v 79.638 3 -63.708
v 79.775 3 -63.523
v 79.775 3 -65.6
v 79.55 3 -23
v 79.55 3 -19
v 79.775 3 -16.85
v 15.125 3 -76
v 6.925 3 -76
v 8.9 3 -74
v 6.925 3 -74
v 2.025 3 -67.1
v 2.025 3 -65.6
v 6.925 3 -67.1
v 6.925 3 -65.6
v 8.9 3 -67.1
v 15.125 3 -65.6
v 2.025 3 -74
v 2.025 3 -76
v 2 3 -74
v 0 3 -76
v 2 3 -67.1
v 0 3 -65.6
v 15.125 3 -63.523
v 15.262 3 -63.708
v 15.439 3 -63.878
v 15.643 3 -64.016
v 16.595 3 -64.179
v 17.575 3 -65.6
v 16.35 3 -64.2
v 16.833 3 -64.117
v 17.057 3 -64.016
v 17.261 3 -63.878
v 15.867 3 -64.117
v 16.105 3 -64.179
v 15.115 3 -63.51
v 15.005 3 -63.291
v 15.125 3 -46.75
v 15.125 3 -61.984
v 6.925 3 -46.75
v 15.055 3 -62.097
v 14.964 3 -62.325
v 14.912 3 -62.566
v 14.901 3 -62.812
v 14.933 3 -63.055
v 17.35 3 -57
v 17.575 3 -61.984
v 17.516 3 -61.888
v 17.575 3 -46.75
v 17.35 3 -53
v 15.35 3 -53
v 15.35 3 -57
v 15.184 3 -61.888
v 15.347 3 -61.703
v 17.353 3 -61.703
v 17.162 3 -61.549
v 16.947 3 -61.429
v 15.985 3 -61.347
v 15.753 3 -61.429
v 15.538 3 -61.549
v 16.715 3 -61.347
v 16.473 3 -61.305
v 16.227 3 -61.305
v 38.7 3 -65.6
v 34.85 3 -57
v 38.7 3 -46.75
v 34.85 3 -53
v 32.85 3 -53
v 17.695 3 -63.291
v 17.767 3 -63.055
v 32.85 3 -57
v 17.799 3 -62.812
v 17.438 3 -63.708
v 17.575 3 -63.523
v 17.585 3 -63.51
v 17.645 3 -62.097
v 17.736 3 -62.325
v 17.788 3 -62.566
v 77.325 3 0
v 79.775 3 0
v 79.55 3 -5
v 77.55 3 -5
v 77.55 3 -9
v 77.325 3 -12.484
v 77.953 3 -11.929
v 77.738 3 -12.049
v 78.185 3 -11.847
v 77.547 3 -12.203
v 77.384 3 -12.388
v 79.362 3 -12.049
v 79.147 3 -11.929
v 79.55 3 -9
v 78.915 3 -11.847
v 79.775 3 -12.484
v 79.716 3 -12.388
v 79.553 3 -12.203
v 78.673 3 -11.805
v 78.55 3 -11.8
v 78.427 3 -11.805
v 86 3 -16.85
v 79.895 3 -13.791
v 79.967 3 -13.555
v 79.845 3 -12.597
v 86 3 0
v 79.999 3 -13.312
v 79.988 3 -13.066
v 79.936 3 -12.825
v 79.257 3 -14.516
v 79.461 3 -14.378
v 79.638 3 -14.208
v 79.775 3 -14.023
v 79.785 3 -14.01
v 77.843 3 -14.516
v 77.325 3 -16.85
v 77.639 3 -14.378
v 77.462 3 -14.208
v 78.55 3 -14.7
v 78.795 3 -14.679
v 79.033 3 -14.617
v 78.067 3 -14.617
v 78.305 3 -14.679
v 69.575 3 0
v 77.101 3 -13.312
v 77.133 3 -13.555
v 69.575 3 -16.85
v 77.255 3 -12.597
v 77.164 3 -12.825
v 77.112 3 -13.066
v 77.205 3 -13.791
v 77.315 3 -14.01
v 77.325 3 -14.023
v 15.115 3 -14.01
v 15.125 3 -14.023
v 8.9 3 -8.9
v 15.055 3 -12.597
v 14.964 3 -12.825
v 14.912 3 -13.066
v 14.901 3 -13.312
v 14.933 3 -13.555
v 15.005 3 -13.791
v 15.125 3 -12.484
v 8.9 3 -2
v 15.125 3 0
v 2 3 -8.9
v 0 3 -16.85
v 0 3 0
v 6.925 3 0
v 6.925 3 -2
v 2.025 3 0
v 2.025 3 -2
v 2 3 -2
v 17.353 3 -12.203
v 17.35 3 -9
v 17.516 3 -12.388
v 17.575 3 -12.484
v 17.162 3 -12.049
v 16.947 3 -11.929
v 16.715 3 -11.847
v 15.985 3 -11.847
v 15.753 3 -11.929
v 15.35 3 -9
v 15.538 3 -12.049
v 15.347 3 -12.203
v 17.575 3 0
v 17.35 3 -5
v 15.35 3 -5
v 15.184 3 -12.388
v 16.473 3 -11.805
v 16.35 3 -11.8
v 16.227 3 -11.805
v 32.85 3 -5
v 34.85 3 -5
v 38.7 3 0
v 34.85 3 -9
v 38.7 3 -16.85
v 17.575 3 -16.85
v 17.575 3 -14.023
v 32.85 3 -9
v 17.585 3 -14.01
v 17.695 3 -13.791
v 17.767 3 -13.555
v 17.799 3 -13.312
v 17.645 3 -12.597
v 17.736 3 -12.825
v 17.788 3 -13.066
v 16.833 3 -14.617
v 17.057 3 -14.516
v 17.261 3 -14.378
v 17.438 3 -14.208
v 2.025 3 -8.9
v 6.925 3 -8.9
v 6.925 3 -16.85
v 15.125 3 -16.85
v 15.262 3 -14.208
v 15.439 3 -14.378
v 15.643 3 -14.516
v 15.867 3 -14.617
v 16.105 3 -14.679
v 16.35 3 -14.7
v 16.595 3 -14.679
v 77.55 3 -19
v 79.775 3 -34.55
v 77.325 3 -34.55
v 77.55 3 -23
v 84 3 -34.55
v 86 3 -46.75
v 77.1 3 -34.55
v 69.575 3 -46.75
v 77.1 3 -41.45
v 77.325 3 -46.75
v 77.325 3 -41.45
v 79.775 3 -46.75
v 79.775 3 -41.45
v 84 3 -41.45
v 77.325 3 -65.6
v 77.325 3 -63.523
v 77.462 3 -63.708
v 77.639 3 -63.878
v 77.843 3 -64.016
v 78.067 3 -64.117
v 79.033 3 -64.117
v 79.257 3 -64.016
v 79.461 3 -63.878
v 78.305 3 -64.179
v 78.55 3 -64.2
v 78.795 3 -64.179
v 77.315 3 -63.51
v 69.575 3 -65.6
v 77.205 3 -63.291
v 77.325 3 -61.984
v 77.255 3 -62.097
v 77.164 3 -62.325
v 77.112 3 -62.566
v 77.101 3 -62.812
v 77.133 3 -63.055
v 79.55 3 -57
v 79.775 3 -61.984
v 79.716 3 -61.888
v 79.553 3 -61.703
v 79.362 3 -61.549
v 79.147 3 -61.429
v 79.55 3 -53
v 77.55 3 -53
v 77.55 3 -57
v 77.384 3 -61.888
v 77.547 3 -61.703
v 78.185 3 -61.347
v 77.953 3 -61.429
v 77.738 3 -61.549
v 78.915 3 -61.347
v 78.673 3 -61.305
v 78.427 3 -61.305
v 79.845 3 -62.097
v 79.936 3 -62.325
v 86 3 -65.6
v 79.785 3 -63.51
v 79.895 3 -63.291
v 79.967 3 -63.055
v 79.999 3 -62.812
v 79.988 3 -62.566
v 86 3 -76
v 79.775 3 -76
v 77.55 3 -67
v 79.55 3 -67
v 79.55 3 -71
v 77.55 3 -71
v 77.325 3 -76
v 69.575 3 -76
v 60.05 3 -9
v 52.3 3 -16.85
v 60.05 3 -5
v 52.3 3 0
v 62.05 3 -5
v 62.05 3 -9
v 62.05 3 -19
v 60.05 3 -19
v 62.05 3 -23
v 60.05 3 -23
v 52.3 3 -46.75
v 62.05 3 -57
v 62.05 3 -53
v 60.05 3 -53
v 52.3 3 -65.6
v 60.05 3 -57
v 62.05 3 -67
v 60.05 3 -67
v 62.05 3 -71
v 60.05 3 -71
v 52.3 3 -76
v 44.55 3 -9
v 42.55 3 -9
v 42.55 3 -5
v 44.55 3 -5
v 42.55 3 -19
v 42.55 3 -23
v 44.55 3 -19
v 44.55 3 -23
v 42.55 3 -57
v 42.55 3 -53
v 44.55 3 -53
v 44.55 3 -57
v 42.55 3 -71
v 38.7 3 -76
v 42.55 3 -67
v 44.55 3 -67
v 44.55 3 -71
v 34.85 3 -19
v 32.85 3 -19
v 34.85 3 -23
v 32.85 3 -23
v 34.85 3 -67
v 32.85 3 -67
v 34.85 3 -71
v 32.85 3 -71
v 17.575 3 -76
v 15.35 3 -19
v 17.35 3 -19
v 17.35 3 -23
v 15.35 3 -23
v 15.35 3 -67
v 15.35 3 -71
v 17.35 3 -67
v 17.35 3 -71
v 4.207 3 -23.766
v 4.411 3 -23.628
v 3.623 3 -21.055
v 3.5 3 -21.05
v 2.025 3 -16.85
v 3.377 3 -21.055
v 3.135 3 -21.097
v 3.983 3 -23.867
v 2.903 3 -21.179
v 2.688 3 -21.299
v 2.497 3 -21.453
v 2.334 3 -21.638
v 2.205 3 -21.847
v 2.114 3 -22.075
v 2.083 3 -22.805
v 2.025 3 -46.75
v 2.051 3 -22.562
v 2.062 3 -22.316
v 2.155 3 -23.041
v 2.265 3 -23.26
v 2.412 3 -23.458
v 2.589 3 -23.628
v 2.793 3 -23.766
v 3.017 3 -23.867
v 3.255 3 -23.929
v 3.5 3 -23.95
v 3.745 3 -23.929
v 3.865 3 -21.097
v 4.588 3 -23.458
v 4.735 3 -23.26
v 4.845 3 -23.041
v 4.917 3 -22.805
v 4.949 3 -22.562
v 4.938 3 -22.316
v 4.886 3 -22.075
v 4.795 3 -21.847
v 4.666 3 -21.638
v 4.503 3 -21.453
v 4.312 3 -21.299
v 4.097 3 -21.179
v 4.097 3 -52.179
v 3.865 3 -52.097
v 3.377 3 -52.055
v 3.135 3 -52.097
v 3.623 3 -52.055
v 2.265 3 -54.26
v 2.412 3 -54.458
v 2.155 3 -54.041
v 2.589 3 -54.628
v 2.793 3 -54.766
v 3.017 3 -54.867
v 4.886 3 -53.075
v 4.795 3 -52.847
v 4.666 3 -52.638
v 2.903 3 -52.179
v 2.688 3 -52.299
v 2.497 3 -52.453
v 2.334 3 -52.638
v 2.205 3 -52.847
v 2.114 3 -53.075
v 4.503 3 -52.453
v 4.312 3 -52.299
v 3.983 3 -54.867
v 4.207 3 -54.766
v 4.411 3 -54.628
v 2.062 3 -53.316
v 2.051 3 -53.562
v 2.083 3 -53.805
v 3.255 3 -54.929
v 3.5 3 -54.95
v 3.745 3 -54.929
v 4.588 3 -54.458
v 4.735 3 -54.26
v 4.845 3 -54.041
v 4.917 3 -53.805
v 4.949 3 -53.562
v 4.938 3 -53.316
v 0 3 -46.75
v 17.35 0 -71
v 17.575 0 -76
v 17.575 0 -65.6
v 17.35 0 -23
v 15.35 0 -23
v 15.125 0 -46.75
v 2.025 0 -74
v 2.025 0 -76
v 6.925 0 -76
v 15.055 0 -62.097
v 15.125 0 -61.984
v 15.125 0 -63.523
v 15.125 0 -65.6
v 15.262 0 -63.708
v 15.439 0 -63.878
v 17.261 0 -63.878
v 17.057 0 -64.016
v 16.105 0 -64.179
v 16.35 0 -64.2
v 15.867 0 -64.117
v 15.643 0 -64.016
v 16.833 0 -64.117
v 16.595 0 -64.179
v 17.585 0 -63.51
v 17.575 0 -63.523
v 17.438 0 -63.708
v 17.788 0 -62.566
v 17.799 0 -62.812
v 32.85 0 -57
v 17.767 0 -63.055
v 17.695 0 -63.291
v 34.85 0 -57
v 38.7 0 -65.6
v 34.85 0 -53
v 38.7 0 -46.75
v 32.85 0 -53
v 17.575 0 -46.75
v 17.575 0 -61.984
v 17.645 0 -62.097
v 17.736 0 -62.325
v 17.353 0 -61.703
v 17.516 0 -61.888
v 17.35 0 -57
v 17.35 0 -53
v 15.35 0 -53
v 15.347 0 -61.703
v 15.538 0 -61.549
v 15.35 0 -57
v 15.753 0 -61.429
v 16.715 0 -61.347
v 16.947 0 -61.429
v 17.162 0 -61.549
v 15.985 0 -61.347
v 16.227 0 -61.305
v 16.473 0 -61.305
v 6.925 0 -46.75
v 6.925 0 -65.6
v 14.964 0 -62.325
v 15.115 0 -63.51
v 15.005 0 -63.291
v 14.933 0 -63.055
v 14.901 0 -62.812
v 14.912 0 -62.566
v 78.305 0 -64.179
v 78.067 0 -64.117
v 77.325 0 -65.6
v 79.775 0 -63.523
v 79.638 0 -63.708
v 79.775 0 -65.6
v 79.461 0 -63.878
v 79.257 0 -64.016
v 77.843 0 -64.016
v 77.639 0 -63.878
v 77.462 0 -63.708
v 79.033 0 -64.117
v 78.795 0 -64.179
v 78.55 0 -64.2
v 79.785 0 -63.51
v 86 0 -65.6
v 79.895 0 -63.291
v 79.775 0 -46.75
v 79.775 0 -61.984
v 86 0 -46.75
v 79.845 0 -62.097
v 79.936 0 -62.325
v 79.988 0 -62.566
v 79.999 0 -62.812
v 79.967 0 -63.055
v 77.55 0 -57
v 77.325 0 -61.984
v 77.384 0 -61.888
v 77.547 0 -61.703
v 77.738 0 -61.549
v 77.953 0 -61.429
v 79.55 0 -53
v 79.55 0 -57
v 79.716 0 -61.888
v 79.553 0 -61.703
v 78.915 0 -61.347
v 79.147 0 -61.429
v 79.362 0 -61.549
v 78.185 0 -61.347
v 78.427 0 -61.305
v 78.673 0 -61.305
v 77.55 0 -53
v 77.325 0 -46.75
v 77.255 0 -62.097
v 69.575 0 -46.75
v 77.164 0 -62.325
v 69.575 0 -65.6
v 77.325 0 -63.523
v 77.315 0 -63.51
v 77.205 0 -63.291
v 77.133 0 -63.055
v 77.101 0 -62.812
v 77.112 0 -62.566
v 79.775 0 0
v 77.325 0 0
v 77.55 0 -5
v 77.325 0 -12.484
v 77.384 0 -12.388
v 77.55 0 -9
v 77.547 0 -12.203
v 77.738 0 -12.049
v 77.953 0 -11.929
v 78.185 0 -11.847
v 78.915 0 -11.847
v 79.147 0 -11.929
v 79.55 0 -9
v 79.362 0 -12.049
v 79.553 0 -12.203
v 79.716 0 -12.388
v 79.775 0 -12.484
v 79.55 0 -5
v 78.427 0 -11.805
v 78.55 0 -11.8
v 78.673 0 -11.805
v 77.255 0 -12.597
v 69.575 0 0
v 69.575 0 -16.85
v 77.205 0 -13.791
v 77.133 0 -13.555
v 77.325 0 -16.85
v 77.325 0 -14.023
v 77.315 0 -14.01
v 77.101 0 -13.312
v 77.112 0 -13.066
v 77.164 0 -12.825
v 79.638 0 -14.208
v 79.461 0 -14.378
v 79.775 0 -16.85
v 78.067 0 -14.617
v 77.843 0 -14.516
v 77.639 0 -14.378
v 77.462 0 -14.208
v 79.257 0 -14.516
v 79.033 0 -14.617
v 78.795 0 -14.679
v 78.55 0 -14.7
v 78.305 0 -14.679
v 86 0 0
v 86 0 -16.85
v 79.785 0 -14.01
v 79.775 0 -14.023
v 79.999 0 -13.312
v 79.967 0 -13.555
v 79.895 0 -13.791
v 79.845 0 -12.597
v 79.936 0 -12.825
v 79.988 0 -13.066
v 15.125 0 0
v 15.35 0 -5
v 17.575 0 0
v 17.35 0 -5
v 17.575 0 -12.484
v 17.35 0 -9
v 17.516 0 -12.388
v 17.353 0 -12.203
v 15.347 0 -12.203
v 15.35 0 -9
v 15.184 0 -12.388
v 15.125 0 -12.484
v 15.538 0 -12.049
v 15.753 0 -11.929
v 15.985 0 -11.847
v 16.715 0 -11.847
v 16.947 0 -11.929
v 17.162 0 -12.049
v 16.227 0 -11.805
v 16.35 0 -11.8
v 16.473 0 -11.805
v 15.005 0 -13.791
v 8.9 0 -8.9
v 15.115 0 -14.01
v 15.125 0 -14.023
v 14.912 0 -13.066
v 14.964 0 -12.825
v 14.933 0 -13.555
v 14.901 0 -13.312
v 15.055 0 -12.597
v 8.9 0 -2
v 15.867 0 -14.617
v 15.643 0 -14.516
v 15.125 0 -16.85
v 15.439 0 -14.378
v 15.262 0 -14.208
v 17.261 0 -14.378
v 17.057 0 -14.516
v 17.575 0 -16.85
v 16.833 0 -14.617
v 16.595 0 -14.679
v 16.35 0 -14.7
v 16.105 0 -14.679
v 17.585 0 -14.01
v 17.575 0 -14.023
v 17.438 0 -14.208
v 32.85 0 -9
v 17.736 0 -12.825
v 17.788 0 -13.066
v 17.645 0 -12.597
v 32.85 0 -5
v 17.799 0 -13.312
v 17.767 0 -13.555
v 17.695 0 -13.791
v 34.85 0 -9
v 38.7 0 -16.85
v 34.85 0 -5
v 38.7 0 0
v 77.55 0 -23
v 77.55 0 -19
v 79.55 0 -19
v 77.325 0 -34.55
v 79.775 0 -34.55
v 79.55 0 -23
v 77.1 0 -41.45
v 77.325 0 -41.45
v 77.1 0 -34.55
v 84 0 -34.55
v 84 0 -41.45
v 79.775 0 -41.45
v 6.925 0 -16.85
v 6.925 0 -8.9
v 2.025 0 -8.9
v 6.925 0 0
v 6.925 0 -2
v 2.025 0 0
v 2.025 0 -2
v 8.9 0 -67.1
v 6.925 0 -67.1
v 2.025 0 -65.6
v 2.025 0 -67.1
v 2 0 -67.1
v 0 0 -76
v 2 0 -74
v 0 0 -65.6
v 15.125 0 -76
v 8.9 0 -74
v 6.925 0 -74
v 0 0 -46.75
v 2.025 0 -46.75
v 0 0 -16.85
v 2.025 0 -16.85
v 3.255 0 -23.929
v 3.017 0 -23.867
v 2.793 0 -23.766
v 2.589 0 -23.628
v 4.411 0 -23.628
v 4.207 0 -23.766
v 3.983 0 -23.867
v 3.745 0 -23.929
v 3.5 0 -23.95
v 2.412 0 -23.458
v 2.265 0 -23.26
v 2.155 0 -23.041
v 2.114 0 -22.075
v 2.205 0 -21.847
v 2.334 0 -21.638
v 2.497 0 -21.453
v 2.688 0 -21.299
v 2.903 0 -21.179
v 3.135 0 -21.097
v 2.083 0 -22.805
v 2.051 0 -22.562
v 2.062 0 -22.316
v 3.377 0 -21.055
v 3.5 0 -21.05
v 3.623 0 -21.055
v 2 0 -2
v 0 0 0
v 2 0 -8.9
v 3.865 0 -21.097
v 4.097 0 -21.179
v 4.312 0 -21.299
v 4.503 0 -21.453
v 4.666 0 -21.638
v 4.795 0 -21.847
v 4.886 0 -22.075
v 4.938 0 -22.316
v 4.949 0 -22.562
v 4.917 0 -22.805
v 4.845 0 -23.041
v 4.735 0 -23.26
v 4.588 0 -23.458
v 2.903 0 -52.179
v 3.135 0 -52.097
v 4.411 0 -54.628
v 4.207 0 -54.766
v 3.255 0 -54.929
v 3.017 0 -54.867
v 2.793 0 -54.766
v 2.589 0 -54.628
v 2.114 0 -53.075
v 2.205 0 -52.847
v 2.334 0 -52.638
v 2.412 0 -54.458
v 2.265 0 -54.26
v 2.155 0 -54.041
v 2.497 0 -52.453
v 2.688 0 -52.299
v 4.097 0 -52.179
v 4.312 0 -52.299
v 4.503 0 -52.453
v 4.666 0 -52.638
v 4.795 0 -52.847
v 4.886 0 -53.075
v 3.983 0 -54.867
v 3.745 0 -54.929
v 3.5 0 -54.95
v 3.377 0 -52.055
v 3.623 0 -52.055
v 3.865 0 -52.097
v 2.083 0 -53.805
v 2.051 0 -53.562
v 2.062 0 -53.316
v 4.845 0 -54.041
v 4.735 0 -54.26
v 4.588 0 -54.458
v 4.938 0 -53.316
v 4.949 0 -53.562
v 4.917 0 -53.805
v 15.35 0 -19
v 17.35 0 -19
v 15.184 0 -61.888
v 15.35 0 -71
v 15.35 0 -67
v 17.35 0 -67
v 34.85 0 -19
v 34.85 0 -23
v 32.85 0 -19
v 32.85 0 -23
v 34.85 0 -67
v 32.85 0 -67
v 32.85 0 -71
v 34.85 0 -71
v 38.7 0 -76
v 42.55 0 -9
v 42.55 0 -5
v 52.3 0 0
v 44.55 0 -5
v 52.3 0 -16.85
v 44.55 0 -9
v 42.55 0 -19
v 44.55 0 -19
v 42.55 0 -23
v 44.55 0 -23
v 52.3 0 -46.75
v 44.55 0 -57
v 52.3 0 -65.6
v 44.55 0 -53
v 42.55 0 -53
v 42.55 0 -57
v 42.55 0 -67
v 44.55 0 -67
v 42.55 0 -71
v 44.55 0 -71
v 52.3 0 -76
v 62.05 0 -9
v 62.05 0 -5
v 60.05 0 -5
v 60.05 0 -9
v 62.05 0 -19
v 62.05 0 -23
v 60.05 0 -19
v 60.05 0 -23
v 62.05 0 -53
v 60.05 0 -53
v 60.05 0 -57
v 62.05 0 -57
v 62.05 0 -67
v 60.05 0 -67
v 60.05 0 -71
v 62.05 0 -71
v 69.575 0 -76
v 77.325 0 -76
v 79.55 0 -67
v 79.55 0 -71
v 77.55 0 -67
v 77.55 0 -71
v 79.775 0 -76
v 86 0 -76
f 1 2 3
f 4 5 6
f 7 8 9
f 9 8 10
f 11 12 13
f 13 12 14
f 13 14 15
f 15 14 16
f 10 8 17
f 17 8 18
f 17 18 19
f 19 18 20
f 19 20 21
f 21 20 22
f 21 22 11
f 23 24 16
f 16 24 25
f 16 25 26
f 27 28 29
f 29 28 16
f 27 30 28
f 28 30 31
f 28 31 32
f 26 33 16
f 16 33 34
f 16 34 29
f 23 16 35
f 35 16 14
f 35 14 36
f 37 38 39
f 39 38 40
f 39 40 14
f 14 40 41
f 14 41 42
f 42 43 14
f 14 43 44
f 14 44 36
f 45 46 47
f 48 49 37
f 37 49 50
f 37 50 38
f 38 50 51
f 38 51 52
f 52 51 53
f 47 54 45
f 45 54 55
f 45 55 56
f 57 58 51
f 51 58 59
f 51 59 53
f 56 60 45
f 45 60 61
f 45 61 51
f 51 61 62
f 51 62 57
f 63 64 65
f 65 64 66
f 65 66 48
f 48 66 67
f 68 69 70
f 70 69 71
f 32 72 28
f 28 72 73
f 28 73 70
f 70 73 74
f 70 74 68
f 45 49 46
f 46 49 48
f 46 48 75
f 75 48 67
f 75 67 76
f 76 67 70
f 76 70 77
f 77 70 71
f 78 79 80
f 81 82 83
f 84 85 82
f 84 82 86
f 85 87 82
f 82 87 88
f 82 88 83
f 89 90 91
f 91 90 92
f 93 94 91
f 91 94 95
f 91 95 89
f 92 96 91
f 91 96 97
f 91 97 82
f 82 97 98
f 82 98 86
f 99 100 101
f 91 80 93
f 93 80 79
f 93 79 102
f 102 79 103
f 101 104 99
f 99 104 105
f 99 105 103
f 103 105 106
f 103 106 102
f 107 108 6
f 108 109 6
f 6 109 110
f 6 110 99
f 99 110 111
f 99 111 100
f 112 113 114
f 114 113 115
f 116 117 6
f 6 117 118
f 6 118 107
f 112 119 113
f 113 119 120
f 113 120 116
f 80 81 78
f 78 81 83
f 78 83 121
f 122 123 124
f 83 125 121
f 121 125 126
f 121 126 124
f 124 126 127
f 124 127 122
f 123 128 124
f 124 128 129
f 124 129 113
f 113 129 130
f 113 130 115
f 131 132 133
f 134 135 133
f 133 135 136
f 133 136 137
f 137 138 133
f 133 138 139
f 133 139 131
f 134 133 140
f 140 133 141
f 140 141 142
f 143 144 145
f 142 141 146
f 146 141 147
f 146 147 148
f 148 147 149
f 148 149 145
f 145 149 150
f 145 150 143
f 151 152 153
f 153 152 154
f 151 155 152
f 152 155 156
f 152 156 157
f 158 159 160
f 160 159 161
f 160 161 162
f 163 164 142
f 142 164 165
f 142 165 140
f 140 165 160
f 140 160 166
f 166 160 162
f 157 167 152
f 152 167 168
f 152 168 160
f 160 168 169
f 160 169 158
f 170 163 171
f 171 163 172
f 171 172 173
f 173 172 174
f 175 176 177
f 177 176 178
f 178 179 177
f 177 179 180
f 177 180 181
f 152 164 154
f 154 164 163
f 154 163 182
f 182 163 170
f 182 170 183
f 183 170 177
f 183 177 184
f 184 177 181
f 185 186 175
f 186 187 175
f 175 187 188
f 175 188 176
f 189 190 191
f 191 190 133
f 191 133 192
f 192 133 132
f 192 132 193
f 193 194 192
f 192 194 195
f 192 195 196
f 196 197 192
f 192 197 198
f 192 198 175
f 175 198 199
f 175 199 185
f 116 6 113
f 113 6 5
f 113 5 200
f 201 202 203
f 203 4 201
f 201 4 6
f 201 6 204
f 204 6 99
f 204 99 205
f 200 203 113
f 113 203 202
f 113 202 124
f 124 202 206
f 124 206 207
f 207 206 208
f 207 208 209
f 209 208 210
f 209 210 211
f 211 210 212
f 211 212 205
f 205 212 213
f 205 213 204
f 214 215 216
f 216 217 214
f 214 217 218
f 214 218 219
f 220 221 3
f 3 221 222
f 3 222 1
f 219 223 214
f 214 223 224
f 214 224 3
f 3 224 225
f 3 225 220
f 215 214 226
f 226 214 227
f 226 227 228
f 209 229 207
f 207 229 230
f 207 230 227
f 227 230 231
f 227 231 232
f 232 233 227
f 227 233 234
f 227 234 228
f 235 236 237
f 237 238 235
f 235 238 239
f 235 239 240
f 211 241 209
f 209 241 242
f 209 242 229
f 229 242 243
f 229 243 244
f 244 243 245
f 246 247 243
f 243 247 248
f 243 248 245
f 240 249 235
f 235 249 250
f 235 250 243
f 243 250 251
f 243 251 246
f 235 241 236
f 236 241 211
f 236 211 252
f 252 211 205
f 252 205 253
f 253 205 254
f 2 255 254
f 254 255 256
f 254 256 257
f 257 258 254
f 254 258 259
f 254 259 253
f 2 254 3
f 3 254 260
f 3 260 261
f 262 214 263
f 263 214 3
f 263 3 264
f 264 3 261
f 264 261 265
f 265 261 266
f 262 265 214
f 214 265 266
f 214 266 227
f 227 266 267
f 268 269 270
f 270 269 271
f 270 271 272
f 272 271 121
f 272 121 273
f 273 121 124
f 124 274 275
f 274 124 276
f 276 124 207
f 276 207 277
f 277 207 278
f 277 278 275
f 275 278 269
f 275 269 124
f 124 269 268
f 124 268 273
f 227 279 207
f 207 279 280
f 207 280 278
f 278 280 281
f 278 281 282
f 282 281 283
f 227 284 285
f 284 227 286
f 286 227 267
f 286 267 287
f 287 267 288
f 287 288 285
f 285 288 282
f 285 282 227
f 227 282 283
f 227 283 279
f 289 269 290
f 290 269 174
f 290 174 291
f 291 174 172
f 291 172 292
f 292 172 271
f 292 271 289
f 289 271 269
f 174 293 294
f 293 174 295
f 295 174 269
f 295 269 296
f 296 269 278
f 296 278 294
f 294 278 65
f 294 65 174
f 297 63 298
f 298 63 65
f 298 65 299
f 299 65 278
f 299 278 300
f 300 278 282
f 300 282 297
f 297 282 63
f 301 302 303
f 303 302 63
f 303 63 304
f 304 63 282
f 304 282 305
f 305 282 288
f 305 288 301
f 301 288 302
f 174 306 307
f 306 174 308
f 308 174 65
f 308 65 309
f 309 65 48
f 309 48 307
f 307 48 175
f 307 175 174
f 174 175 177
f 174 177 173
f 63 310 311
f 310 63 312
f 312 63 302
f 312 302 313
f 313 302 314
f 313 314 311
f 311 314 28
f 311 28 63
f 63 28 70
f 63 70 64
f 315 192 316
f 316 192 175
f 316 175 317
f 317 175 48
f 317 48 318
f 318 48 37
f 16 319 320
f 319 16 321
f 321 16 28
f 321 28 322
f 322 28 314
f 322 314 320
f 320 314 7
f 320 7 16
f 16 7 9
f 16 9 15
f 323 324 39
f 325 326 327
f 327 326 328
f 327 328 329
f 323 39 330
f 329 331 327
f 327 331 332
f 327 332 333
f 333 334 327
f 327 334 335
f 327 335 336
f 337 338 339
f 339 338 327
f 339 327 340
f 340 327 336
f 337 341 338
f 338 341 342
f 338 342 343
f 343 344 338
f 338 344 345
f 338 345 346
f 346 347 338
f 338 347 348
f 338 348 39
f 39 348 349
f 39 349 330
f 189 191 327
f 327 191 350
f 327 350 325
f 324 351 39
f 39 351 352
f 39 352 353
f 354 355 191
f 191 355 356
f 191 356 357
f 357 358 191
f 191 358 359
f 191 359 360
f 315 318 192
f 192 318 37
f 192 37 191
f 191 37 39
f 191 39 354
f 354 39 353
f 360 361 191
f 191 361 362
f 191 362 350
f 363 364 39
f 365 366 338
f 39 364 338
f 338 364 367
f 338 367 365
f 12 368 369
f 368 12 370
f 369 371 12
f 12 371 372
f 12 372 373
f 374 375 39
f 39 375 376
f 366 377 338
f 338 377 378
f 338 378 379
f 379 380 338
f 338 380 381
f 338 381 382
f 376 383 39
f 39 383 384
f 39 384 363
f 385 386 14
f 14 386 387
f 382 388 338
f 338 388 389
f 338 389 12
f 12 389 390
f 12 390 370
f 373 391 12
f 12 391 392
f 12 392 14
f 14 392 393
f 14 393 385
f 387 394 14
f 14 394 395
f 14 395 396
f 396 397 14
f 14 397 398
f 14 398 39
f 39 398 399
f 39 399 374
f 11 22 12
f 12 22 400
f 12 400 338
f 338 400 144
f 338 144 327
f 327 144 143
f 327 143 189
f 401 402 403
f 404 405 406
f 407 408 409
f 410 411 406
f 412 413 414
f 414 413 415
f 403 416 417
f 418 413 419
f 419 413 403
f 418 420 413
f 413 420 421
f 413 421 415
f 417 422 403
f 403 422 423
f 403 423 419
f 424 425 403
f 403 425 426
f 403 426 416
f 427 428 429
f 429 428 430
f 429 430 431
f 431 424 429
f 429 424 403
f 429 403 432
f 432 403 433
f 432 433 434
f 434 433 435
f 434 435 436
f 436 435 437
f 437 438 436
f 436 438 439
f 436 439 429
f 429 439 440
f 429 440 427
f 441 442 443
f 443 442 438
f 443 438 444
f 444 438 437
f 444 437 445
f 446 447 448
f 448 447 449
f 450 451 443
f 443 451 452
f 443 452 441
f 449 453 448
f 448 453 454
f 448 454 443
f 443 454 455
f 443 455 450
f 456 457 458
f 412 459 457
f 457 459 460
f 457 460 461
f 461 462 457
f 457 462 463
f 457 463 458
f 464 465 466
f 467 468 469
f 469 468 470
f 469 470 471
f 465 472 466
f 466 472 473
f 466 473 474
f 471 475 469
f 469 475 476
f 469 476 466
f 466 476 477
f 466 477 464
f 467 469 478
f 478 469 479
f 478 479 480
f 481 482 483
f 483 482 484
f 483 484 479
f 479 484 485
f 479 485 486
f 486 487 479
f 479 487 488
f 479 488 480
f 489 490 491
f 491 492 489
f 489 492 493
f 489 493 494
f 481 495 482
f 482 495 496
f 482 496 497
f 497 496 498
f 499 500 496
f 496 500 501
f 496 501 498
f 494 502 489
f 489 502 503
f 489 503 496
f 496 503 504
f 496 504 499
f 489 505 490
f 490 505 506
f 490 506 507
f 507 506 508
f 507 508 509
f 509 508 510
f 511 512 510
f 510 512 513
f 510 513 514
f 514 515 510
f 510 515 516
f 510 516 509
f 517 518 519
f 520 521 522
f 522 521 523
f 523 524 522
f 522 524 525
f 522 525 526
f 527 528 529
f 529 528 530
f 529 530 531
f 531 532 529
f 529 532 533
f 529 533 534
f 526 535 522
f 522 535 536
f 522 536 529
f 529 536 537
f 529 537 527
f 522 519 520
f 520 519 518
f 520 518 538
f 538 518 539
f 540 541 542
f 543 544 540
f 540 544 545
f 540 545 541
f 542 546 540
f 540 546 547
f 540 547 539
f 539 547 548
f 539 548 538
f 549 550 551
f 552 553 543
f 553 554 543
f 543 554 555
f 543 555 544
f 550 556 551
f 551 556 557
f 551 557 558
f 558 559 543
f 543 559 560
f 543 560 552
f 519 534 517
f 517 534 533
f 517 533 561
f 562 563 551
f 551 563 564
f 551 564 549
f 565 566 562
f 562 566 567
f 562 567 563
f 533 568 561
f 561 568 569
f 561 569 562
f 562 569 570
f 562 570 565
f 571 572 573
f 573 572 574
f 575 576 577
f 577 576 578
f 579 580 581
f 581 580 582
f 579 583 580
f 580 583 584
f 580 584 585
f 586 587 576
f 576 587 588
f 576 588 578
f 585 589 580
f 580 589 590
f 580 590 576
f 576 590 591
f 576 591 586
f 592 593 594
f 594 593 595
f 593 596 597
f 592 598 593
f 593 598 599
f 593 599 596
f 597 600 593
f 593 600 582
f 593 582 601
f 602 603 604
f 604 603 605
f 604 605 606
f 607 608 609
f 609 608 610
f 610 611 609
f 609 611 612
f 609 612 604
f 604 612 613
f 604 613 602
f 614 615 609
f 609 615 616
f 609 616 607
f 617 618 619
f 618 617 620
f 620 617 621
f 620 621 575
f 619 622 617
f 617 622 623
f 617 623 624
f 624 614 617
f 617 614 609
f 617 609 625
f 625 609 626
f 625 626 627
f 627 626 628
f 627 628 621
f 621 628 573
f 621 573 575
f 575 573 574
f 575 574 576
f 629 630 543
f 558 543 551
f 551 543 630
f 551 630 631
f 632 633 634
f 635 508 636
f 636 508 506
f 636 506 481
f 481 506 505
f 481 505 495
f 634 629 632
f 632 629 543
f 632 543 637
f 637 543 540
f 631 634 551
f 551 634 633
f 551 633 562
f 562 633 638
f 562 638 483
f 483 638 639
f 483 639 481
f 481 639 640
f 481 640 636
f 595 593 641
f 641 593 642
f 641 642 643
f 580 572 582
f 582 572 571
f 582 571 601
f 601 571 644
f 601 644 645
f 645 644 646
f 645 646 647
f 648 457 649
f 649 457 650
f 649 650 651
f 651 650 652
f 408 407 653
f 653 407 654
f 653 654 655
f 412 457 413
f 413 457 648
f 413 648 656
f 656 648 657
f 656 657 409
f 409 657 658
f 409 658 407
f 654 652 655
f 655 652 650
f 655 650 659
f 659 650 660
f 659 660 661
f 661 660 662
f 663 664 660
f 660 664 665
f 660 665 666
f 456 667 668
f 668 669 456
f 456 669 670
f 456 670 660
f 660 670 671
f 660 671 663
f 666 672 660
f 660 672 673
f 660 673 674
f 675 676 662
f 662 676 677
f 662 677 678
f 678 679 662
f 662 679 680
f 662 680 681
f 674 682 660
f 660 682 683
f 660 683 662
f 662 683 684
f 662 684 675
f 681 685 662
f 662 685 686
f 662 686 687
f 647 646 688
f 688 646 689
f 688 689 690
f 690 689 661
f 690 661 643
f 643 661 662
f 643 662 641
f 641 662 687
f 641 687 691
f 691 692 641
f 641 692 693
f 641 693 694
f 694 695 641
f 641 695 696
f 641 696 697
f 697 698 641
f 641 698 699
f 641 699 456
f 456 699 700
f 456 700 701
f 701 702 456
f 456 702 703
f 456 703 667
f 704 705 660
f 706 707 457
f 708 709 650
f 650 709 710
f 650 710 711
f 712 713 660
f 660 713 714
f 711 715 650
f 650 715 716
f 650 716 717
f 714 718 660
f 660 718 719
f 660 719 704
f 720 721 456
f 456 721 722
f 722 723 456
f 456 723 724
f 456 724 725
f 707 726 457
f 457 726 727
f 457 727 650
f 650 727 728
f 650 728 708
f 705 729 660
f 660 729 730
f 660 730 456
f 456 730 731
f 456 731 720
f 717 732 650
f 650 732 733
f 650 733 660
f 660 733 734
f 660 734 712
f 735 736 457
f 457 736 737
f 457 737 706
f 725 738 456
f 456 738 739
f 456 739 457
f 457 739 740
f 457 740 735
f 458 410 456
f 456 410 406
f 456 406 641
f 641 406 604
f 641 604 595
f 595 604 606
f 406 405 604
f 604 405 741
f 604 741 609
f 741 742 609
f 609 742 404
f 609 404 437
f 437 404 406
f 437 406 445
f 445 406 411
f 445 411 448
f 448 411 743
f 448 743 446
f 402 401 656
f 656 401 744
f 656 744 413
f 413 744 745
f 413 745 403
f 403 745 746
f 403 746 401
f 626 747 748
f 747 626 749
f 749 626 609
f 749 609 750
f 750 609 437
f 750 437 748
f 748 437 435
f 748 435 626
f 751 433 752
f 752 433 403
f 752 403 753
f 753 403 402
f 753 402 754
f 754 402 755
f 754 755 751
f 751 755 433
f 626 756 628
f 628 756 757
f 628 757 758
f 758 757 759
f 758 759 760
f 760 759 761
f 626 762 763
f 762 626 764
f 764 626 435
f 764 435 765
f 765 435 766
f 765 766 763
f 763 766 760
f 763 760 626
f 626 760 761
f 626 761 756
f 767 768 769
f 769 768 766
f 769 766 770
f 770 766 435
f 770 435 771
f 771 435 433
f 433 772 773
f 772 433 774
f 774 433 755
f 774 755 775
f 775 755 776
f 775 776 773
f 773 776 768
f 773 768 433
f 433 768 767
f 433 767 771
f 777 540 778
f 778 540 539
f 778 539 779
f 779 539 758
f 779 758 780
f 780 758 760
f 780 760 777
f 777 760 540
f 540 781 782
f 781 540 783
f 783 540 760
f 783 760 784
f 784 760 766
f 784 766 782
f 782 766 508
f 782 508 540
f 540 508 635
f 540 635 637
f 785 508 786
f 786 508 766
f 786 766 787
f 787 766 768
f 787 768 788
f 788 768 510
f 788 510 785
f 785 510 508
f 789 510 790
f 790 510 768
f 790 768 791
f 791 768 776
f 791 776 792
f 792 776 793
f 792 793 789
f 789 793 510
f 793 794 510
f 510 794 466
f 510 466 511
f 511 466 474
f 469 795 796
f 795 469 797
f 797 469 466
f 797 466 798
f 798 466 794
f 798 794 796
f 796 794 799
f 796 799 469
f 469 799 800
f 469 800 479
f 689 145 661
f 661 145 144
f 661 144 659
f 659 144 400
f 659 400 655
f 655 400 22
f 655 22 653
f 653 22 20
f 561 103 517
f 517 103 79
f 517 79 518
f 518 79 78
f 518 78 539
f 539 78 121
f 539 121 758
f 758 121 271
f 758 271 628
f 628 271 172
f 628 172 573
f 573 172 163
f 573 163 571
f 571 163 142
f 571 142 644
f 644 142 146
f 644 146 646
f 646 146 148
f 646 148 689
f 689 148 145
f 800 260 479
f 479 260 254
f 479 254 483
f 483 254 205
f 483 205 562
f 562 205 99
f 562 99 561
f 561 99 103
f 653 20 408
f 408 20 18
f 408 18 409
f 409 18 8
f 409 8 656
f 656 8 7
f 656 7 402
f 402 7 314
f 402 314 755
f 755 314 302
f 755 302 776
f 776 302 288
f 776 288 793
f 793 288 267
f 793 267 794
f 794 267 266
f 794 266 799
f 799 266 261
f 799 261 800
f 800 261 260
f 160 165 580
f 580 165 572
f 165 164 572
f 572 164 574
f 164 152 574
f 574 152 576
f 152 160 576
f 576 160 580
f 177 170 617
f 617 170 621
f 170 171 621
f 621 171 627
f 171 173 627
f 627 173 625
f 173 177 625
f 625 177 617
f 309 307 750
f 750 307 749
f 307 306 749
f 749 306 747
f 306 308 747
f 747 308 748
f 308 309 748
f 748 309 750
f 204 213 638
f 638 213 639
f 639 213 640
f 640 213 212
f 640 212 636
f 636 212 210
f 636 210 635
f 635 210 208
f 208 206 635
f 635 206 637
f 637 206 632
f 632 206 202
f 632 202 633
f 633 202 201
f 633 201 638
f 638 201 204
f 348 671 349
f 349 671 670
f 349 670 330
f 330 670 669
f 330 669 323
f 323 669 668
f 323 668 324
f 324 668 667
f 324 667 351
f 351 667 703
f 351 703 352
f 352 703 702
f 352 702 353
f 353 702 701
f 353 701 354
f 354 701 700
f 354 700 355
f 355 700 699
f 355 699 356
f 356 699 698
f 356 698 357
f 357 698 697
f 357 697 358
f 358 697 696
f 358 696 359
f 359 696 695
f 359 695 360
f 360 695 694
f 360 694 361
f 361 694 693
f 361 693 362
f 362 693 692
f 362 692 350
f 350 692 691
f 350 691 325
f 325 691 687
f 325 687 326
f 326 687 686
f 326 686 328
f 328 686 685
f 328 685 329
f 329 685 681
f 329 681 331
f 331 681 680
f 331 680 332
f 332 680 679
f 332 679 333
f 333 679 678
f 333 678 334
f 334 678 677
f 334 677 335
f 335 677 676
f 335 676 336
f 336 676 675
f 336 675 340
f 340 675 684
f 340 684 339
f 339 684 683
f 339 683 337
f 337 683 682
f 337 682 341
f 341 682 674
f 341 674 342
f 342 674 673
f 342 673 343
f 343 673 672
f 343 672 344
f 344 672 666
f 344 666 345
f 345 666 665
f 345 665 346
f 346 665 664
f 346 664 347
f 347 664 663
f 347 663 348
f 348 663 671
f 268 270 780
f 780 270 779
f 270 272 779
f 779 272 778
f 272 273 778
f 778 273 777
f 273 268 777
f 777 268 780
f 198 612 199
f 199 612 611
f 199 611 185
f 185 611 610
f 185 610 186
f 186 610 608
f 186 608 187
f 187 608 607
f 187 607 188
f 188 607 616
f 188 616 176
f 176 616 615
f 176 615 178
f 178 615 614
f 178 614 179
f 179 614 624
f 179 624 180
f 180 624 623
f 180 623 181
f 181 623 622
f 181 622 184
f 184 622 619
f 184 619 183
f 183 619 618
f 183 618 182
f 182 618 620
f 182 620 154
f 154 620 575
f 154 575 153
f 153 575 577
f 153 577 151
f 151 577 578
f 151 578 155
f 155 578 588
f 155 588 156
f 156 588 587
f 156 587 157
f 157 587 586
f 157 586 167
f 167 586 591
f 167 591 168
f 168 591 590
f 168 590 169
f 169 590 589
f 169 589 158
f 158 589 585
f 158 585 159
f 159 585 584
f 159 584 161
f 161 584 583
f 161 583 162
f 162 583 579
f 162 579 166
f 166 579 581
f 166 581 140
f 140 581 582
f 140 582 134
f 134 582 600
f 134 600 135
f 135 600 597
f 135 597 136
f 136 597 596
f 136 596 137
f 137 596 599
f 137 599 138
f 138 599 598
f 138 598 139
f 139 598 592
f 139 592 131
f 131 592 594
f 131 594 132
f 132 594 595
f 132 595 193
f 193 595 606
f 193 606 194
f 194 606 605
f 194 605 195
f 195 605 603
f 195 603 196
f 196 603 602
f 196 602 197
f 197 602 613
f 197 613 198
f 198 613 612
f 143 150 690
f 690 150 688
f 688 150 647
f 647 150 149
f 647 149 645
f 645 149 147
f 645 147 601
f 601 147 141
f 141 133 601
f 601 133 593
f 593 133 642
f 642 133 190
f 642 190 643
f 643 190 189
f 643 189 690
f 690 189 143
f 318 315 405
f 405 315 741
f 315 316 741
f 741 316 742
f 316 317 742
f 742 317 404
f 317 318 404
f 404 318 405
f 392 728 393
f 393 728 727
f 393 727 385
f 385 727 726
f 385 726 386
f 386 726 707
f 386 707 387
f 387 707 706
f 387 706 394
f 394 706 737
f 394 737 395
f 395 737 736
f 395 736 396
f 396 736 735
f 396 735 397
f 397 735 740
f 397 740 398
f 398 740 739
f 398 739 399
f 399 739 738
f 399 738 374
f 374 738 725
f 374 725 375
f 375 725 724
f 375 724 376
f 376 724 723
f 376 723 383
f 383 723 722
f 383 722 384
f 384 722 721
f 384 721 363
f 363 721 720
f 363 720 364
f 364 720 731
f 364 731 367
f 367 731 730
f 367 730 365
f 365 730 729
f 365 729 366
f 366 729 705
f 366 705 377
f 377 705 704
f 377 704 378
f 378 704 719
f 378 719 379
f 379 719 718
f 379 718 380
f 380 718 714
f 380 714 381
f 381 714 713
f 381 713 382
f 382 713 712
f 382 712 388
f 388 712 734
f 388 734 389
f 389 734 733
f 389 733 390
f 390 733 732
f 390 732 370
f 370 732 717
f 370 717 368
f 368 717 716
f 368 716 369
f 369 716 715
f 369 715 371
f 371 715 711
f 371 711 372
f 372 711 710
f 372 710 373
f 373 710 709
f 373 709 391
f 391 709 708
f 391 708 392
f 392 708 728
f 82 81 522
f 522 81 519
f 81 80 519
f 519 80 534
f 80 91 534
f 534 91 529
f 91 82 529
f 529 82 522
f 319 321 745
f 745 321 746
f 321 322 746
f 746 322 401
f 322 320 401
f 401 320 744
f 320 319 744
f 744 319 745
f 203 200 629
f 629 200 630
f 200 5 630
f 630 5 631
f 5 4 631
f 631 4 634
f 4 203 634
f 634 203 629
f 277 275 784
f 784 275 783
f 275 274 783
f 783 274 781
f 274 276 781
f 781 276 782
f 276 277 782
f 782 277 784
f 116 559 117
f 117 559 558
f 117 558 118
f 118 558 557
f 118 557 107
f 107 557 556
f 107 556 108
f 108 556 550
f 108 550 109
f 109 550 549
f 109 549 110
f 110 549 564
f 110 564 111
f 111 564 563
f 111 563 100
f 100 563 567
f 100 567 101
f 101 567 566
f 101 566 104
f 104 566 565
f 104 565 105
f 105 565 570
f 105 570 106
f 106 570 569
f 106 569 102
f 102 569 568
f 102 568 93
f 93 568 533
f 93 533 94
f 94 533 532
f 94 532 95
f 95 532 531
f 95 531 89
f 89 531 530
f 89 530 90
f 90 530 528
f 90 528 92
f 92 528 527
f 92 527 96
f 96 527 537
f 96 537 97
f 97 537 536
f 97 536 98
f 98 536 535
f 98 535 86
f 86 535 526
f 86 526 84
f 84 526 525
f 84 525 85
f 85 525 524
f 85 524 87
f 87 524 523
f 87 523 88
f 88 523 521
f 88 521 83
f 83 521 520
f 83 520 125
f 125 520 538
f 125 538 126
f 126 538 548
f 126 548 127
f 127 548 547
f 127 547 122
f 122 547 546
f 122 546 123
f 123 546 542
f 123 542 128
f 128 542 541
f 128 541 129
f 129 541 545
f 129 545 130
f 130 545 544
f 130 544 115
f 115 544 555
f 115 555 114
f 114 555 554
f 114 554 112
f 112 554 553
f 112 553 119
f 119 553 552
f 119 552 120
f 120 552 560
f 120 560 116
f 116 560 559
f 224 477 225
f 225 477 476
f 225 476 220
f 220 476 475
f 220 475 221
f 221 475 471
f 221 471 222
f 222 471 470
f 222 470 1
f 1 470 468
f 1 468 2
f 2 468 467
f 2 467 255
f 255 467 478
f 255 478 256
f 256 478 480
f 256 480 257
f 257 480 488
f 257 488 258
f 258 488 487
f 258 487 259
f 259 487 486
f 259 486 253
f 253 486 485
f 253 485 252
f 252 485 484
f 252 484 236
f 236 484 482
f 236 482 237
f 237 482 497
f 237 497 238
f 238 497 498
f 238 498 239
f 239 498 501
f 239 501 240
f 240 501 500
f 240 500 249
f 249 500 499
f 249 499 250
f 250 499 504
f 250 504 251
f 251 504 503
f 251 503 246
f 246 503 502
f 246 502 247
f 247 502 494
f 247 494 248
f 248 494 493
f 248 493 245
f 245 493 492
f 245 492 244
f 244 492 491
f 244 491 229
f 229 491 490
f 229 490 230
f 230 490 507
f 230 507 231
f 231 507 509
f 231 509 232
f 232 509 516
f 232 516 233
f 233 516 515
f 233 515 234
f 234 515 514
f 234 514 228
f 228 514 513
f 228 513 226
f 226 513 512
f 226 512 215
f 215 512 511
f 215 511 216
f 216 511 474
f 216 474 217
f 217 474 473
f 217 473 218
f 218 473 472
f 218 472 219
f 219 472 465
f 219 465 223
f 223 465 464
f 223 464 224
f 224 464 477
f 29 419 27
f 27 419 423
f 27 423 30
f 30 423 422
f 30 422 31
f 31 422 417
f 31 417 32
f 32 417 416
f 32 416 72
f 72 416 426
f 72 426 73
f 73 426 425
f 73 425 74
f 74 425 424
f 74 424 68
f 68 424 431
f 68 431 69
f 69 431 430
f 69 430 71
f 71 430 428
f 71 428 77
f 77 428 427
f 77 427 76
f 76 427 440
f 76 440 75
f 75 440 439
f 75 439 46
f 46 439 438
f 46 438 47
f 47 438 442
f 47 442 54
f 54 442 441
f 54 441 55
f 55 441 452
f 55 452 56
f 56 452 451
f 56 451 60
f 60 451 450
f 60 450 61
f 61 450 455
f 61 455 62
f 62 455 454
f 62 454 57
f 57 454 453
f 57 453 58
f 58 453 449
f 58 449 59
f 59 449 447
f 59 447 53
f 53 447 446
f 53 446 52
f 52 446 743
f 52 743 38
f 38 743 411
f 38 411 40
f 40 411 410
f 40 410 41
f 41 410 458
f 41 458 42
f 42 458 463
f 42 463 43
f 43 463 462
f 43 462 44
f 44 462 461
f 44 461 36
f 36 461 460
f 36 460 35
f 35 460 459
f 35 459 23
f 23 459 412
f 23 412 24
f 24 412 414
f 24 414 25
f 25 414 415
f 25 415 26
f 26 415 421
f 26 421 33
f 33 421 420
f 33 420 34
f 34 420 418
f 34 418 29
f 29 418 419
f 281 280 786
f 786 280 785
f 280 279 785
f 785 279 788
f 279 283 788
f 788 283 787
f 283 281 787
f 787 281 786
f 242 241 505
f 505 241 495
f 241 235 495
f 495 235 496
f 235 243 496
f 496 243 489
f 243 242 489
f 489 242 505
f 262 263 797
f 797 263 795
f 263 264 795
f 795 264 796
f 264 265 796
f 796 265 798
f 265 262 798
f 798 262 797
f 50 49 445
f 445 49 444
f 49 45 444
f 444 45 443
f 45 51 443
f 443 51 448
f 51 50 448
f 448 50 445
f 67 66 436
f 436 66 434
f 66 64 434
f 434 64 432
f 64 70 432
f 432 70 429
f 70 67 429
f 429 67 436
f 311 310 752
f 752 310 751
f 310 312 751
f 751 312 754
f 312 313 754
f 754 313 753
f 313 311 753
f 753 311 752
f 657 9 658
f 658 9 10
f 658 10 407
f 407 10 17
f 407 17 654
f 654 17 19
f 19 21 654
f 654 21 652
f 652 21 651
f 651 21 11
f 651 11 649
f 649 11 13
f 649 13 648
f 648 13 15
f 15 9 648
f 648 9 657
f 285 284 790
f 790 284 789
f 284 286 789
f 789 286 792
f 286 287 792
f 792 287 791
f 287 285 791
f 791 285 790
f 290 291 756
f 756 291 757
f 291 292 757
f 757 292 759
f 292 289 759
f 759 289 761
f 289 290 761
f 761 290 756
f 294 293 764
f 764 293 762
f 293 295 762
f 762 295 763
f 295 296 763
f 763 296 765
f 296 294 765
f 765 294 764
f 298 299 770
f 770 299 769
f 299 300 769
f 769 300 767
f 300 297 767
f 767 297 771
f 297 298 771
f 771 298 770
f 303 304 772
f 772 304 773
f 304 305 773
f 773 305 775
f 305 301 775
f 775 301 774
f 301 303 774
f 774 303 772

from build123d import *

# Parameters (mm, degrees)
ESQUISSE1_W        = 86
ESQUISSE1_H        = 76
ESQUISSE1_R        = 1.45
ESQUISSE1_W_2      = 2
ESQUISSE1_H_2      = 4
ESQUISSE1_W_3      = 6.9
ESQUISSE1_H_3      = 6.9
BOSS_EXTRU_1_DEPTH = 3


with BuildPart() as part:
    # Esquisse1 → Boss.-Extru.1 (new body)
    with BuildSketch(Plane(origin=(0, 0, 0), x_dir=(1, 0, 0), z_dir=(0, 1, 0))):
        with Locations((43, 38)):
            Rectangle(ESQUISSE1_W, ESQUISSE1_H)
        with Locations(Location((16.35, 13.25, 0), (0, 0, 270))):
            Circle(ESQUISSE1_R, mode=Mode.SUBTRACT)
        with Locations(Location((78.55, 13.25, 0), (0, 0, 270))):
            Circle(ESQUISSE1_R, mode=Mode.SUBTRACT)
        with Locations(Location((78.55, 62.75, 0), (0, 0, 90))):
            Circle(ESQUISSE1_R, mode=Mode.SUBTRACT)
        with Locations(Location((16.35, 62.75, 0), (0, 0, 90))):
            Circle(ESQUISSE1_R, mode=Mode.SUBTRACT)
        with Locations(Location((3.5, 22.5, 0), (0, 0, 270))):
            Circle(ESQUISSE1_R, mode=Mode.SUBTRACT)
        with Locations(Location((3.5, 53.5, 0), (0, 0, 90))):
            Circle(ESQUISSE1_R, mode=Mode.SUBTRACT)
        with Locations((61.05, 7)):
            Rectangle(ESQUISSE1_W_2, ESQUISSE1_H_2, mode=Mode.SUBTRACT)
        with Locations((16.35, 7)):
            Rectangle(ESQUISSE1_W_2, ESQUISSE1_H_2, mode=Mode.SUBTRACT)
        with Locations((80.55, 38)):
            Rectangle(ESQUISSE1_W_3, ESQUISSE1_H_3, mode=Mode.SUBTRACT)
        with Locations((33.85, 7)):
            Rectangle(ESQUISSE1_W_2, ESQUISSE1_H_2, mode=Mode.SUBTRACT)
        with Locations((5.45, 5.45)):
            Rectangle(ESQUISSE1_W_3, ESQUISSE1_H_3, mode=Mode.SUBTRACT)
        with Locations((33.85, 21)):
            Rectangle(ESQUISSE1_W_2, ESQUISSE1_H_2, mode=Mode.SUBTRACT)
        with Locations((16.35, 21)):
            Rectangle(ESQUISSE1_W_2, ESQUISSE1_H_2, mode=Mode.SUBTRACT)
        with Locations((78.55, 7)):
            Rectangle(ESQUISSE1_W_2, ESQUISSE1_H_2, mode=Mode.SUBTRACT)
        with Locations((78.55, 21)):
            Rectangle(ESQUISSE1_W_2, ESQUISSE1_H_2, mode=Mode.SUBTRACT)
        with Locations((61.05, 21)):
            Rectangle(ESQUISSE1_W_2, ESQUISSE1_H_2, mode=Mode.SUBTRACT)
        with Locations((61.05, 55)):
            Rectangle(ESQUISSE1_W_2, ESQUISSE1_H_2, mode=Mode.SUBTRACT)
        with Locations((78.55, 55)):
            Rectangle(ESQUISSE1_W_2, ESQUISSE1_H_2, mode=Mode.SUBTRACT)
        with Locations((78.55, 69)):
            Rectangle(ESQUISSE1_W_2, ESQUISSE1_H_2, mode=Mode.SUBTRACT)
        with Locations((16.35, 55)):
            Rectangle(ESQUISSE1_W_2, ESQUISSE1_H_2, mode=Mode.SUBTRACT)
        with Locations((33.85, 55)):
            Rectangle(ESQUISSE1_W_2, ESQUISSE1_H_2, mode=Mode.SUBTRACT)
        with Locations((33.85, 69)):
            Rectangle(ESQUISSE1_W_2, ESQUISSE1_H_2, mode=Mode.SUBTRACT)
        with Locations((5.45, 70.55)):
            Rectangle(ESQUISSE1_W_3, ESQUISSE1_H_3, mode=Mode.SUBTRACT)
        with Locations((61.05, 69)):
            Rectangle(ESQUISSE1_W_2, ESQUISSE1_H_2, mode=Mode.SUBTRACT)
        with Locations((16.35, 69)):
            Rectangle(ESQUISSE1_W_2, ESQUISSE1_H_2, mode=Mode.SUBTRACT)
        with Locations((43.55, 55)):
            Rectangle(ESQUISSE1_W_2, ESQUISSE1_H_2, mode=Mode.SUBTRACT)
        with Locations((43.55, 7)):
            Rectangle(ESQUISSE1_W_2, ESQUISSE1_H_2, mode=Mode.SUBTRACT)
        with Locations((43.55, 21)):
            Rectangle(ESQUISSE1_W_2, ESQUISSE1_H_2, mode=Mode.SUBTRACT)
        with Locations((43.55, 69)):
            Rectangle(ESQUISSE1_W_2, ESQUISSE1_H_2, mode=Mode.SUBTRACT)
    extrude(amount=BOSS_EXTRU_1_DEPTH)


solid = part.part
